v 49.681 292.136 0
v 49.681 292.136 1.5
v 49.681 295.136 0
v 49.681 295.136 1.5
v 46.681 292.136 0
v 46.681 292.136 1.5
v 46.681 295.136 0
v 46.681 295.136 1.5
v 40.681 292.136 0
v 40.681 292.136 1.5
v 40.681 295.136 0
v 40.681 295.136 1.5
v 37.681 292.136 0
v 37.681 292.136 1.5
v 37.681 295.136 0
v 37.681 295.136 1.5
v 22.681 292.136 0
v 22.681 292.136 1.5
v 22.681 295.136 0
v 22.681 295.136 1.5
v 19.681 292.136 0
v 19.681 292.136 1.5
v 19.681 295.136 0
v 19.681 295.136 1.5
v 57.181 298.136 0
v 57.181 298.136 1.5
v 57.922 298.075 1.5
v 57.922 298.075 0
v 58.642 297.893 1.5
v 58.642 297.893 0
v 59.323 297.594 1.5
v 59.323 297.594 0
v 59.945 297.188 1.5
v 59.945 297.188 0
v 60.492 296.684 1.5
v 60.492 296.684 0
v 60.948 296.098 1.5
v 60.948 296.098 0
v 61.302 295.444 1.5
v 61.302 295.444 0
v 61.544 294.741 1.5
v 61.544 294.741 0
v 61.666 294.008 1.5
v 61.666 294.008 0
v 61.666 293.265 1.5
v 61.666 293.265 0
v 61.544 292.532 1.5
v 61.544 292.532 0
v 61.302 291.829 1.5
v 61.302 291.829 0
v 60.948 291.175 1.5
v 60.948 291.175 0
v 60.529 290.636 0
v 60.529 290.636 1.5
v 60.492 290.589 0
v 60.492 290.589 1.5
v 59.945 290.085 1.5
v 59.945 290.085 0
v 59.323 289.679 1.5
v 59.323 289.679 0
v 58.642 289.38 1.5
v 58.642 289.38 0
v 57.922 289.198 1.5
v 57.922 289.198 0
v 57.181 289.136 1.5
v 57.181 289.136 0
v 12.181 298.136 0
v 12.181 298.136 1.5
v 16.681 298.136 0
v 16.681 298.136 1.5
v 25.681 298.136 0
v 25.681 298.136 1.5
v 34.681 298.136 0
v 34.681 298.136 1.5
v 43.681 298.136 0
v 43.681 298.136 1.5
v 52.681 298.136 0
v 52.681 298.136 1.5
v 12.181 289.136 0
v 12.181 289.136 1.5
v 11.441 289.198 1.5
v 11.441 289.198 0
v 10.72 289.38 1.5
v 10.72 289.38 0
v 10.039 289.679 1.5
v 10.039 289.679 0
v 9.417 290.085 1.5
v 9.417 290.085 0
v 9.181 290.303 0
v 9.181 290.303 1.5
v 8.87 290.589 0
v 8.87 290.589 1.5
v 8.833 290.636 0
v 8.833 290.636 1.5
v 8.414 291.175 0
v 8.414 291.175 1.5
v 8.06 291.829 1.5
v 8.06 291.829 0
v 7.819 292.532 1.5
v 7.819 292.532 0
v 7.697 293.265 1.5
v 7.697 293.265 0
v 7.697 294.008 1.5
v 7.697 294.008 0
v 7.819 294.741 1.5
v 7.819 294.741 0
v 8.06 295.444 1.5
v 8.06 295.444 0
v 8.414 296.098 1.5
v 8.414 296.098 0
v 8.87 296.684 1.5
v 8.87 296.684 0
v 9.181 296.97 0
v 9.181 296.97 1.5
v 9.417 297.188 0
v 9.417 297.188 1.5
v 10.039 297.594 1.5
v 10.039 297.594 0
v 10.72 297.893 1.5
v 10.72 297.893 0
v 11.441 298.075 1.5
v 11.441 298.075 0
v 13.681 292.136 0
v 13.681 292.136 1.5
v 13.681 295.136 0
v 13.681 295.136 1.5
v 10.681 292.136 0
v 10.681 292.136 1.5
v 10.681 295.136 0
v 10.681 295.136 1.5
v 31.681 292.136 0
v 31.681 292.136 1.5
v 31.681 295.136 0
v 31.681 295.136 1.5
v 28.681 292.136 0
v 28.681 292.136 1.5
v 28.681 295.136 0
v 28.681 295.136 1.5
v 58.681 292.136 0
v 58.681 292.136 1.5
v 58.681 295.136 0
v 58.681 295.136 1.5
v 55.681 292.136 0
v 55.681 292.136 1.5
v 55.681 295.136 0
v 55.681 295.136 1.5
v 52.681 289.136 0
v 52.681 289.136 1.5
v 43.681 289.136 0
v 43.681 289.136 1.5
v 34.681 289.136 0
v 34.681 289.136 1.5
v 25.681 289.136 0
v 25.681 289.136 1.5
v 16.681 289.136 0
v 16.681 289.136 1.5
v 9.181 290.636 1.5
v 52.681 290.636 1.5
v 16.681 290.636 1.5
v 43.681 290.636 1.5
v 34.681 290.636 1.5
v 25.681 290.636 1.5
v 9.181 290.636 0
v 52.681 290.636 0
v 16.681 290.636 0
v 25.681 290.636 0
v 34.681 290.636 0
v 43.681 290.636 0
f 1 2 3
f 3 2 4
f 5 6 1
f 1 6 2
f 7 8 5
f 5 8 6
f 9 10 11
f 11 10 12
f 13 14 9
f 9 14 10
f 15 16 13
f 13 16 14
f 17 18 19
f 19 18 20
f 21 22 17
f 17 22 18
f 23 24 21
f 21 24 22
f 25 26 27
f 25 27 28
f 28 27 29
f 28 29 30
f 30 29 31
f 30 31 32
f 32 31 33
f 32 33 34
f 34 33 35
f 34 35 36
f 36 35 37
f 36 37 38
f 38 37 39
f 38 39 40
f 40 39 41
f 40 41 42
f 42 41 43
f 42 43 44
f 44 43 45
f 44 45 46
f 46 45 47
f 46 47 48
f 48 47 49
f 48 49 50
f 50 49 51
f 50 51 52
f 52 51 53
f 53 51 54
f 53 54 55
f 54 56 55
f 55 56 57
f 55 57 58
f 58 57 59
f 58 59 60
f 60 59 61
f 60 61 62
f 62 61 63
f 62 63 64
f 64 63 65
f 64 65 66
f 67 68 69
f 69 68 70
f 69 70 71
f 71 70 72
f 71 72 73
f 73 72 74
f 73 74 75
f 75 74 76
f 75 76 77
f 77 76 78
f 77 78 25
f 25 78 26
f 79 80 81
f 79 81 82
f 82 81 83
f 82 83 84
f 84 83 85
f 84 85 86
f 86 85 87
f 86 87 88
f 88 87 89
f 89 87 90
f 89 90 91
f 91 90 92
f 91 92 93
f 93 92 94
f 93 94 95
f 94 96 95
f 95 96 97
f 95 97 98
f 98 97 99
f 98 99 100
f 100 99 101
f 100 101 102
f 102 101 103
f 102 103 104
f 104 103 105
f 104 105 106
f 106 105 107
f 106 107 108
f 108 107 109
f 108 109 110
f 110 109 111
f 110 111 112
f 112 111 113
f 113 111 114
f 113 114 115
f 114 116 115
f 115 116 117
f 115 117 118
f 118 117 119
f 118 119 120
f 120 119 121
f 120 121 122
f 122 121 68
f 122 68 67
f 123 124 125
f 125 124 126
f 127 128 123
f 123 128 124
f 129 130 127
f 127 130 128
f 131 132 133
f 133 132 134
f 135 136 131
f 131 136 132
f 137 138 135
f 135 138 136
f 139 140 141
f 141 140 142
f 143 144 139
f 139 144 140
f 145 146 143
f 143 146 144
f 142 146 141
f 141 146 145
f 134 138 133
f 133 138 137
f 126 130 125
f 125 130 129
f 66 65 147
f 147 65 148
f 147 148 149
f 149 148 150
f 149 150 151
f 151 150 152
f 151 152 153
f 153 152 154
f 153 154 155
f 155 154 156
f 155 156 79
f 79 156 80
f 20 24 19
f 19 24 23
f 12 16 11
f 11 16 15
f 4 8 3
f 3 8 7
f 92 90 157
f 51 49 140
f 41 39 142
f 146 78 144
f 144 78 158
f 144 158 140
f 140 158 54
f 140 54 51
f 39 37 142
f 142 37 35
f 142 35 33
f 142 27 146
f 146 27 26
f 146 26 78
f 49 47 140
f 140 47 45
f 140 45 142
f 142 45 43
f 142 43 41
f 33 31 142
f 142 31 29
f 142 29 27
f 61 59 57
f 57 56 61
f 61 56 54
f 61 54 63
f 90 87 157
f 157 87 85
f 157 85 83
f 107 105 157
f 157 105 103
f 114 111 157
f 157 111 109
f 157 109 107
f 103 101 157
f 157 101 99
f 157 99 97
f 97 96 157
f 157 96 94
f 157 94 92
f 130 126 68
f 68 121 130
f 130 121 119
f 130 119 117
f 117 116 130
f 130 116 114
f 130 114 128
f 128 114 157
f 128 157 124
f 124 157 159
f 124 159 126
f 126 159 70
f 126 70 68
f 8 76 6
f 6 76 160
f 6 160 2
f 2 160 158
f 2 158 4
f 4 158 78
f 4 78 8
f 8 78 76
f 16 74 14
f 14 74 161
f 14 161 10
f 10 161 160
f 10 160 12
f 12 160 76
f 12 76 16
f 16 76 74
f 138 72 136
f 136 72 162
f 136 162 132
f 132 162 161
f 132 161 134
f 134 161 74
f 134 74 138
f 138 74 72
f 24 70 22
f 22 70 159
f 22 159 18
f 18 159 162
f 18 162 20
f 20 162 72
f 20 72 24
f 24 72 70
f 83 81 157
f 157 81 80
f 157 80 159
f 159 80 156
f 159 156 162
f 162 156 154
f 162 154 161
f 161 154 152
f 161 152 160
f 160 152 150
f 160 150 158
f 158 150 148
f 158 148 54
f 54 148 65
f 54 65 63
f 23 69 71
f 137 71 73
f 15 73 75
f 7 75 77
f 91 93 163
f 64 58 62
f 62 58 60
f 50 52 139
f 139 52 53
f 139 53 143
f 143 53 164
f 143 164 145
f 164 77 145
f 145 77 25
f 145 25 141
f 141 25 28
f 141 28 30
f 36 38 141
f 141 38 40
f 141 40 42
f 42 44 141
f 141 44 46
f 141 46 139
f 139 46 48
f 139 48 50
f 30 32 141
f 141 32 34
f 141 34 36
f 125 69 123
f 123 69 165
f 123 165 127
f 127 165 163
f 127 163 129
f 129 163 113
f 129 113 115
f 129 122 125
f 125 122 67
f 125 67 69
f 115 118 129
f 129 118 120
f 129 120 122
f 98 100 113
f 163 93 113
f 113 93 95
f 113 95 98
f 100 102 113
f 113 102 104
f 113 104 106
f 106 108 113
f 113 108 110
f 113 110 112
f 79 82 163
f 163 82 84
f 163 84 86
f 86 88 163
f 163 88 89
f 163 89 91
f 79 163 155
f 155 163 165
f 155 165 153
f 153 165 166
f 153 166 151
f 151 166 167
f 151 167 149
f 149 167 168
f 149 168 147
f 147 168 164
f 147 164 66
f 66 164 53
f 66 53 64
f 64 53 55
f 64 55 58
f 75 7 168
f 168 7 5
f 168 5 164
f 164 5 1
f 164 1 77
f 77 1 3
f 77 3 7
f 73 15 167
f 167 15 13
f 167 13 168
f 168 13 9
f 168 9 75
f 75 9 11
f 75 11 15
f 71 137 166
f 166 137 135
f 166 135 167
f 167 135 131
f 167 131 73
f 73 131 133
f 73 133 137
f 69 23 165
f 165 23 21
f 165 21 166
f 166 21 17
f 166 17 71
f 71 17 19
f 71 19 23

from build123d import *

# Parameters (mm, degrees)
MODEL_W                 = 3
MODEL_H                 = 3
SALIENTE_EXTRUIR1_DEPTH = 1.5


with BuildPart() as part:
    # Model → Saliente-Extruir1 (new body)
    with BuildSketch(Plane.XY):
        with BuildLine():
            Line((12.181222481, 298.136475095), (57.181222481, 298.136475095))
            ThreePointArc((57.181222481, 298.136475095), (61.681222481, 293.636475095), (57.181222481, 289.136475095))
            Line((57.181222481, 289.136475095), (12.181222481, 289.136475095))
            ThreePointArc((12.181222481, 289.136475095), (7.681222481, 293.636475095), (12.181222481, 298.136475095))
        make_face()
        with Locations((12.181222481, 293.636475095)):
            Rectangle(MODEL_W, MODEL_H, mode=Mode.SUBTRACT)
        with Locations((21.181222481, 293.636475095)):
            Rectangle(MODEL_W, MODEL_H, mode=Mode.SUBTRACT)
        with Locations((30.181222481, 293.636475095)):
            Rectangle(MODEL_W, MODEL_H, mode=Mode.SUBTRACT)
        with Locations((39.181222481, 293.636475095)):
            Rectangle(MODEL_W, MODEL_H, mode=Mode.SUBTRACT)
        with Locations((57.181222481, 293.636475095)):
            Rectangle(MODEL_W, MODEL_H, mode=Mode.SUBTRACT)
        with Locations((48.181222481, 293.636475095)):
            Rectangle(MODEL_W, MODEL_H, mode=Mode.SUBTRACT)
    extrude(amount=SALIENTE_EXTRUIR1_DEPTH)


solid = part.part
